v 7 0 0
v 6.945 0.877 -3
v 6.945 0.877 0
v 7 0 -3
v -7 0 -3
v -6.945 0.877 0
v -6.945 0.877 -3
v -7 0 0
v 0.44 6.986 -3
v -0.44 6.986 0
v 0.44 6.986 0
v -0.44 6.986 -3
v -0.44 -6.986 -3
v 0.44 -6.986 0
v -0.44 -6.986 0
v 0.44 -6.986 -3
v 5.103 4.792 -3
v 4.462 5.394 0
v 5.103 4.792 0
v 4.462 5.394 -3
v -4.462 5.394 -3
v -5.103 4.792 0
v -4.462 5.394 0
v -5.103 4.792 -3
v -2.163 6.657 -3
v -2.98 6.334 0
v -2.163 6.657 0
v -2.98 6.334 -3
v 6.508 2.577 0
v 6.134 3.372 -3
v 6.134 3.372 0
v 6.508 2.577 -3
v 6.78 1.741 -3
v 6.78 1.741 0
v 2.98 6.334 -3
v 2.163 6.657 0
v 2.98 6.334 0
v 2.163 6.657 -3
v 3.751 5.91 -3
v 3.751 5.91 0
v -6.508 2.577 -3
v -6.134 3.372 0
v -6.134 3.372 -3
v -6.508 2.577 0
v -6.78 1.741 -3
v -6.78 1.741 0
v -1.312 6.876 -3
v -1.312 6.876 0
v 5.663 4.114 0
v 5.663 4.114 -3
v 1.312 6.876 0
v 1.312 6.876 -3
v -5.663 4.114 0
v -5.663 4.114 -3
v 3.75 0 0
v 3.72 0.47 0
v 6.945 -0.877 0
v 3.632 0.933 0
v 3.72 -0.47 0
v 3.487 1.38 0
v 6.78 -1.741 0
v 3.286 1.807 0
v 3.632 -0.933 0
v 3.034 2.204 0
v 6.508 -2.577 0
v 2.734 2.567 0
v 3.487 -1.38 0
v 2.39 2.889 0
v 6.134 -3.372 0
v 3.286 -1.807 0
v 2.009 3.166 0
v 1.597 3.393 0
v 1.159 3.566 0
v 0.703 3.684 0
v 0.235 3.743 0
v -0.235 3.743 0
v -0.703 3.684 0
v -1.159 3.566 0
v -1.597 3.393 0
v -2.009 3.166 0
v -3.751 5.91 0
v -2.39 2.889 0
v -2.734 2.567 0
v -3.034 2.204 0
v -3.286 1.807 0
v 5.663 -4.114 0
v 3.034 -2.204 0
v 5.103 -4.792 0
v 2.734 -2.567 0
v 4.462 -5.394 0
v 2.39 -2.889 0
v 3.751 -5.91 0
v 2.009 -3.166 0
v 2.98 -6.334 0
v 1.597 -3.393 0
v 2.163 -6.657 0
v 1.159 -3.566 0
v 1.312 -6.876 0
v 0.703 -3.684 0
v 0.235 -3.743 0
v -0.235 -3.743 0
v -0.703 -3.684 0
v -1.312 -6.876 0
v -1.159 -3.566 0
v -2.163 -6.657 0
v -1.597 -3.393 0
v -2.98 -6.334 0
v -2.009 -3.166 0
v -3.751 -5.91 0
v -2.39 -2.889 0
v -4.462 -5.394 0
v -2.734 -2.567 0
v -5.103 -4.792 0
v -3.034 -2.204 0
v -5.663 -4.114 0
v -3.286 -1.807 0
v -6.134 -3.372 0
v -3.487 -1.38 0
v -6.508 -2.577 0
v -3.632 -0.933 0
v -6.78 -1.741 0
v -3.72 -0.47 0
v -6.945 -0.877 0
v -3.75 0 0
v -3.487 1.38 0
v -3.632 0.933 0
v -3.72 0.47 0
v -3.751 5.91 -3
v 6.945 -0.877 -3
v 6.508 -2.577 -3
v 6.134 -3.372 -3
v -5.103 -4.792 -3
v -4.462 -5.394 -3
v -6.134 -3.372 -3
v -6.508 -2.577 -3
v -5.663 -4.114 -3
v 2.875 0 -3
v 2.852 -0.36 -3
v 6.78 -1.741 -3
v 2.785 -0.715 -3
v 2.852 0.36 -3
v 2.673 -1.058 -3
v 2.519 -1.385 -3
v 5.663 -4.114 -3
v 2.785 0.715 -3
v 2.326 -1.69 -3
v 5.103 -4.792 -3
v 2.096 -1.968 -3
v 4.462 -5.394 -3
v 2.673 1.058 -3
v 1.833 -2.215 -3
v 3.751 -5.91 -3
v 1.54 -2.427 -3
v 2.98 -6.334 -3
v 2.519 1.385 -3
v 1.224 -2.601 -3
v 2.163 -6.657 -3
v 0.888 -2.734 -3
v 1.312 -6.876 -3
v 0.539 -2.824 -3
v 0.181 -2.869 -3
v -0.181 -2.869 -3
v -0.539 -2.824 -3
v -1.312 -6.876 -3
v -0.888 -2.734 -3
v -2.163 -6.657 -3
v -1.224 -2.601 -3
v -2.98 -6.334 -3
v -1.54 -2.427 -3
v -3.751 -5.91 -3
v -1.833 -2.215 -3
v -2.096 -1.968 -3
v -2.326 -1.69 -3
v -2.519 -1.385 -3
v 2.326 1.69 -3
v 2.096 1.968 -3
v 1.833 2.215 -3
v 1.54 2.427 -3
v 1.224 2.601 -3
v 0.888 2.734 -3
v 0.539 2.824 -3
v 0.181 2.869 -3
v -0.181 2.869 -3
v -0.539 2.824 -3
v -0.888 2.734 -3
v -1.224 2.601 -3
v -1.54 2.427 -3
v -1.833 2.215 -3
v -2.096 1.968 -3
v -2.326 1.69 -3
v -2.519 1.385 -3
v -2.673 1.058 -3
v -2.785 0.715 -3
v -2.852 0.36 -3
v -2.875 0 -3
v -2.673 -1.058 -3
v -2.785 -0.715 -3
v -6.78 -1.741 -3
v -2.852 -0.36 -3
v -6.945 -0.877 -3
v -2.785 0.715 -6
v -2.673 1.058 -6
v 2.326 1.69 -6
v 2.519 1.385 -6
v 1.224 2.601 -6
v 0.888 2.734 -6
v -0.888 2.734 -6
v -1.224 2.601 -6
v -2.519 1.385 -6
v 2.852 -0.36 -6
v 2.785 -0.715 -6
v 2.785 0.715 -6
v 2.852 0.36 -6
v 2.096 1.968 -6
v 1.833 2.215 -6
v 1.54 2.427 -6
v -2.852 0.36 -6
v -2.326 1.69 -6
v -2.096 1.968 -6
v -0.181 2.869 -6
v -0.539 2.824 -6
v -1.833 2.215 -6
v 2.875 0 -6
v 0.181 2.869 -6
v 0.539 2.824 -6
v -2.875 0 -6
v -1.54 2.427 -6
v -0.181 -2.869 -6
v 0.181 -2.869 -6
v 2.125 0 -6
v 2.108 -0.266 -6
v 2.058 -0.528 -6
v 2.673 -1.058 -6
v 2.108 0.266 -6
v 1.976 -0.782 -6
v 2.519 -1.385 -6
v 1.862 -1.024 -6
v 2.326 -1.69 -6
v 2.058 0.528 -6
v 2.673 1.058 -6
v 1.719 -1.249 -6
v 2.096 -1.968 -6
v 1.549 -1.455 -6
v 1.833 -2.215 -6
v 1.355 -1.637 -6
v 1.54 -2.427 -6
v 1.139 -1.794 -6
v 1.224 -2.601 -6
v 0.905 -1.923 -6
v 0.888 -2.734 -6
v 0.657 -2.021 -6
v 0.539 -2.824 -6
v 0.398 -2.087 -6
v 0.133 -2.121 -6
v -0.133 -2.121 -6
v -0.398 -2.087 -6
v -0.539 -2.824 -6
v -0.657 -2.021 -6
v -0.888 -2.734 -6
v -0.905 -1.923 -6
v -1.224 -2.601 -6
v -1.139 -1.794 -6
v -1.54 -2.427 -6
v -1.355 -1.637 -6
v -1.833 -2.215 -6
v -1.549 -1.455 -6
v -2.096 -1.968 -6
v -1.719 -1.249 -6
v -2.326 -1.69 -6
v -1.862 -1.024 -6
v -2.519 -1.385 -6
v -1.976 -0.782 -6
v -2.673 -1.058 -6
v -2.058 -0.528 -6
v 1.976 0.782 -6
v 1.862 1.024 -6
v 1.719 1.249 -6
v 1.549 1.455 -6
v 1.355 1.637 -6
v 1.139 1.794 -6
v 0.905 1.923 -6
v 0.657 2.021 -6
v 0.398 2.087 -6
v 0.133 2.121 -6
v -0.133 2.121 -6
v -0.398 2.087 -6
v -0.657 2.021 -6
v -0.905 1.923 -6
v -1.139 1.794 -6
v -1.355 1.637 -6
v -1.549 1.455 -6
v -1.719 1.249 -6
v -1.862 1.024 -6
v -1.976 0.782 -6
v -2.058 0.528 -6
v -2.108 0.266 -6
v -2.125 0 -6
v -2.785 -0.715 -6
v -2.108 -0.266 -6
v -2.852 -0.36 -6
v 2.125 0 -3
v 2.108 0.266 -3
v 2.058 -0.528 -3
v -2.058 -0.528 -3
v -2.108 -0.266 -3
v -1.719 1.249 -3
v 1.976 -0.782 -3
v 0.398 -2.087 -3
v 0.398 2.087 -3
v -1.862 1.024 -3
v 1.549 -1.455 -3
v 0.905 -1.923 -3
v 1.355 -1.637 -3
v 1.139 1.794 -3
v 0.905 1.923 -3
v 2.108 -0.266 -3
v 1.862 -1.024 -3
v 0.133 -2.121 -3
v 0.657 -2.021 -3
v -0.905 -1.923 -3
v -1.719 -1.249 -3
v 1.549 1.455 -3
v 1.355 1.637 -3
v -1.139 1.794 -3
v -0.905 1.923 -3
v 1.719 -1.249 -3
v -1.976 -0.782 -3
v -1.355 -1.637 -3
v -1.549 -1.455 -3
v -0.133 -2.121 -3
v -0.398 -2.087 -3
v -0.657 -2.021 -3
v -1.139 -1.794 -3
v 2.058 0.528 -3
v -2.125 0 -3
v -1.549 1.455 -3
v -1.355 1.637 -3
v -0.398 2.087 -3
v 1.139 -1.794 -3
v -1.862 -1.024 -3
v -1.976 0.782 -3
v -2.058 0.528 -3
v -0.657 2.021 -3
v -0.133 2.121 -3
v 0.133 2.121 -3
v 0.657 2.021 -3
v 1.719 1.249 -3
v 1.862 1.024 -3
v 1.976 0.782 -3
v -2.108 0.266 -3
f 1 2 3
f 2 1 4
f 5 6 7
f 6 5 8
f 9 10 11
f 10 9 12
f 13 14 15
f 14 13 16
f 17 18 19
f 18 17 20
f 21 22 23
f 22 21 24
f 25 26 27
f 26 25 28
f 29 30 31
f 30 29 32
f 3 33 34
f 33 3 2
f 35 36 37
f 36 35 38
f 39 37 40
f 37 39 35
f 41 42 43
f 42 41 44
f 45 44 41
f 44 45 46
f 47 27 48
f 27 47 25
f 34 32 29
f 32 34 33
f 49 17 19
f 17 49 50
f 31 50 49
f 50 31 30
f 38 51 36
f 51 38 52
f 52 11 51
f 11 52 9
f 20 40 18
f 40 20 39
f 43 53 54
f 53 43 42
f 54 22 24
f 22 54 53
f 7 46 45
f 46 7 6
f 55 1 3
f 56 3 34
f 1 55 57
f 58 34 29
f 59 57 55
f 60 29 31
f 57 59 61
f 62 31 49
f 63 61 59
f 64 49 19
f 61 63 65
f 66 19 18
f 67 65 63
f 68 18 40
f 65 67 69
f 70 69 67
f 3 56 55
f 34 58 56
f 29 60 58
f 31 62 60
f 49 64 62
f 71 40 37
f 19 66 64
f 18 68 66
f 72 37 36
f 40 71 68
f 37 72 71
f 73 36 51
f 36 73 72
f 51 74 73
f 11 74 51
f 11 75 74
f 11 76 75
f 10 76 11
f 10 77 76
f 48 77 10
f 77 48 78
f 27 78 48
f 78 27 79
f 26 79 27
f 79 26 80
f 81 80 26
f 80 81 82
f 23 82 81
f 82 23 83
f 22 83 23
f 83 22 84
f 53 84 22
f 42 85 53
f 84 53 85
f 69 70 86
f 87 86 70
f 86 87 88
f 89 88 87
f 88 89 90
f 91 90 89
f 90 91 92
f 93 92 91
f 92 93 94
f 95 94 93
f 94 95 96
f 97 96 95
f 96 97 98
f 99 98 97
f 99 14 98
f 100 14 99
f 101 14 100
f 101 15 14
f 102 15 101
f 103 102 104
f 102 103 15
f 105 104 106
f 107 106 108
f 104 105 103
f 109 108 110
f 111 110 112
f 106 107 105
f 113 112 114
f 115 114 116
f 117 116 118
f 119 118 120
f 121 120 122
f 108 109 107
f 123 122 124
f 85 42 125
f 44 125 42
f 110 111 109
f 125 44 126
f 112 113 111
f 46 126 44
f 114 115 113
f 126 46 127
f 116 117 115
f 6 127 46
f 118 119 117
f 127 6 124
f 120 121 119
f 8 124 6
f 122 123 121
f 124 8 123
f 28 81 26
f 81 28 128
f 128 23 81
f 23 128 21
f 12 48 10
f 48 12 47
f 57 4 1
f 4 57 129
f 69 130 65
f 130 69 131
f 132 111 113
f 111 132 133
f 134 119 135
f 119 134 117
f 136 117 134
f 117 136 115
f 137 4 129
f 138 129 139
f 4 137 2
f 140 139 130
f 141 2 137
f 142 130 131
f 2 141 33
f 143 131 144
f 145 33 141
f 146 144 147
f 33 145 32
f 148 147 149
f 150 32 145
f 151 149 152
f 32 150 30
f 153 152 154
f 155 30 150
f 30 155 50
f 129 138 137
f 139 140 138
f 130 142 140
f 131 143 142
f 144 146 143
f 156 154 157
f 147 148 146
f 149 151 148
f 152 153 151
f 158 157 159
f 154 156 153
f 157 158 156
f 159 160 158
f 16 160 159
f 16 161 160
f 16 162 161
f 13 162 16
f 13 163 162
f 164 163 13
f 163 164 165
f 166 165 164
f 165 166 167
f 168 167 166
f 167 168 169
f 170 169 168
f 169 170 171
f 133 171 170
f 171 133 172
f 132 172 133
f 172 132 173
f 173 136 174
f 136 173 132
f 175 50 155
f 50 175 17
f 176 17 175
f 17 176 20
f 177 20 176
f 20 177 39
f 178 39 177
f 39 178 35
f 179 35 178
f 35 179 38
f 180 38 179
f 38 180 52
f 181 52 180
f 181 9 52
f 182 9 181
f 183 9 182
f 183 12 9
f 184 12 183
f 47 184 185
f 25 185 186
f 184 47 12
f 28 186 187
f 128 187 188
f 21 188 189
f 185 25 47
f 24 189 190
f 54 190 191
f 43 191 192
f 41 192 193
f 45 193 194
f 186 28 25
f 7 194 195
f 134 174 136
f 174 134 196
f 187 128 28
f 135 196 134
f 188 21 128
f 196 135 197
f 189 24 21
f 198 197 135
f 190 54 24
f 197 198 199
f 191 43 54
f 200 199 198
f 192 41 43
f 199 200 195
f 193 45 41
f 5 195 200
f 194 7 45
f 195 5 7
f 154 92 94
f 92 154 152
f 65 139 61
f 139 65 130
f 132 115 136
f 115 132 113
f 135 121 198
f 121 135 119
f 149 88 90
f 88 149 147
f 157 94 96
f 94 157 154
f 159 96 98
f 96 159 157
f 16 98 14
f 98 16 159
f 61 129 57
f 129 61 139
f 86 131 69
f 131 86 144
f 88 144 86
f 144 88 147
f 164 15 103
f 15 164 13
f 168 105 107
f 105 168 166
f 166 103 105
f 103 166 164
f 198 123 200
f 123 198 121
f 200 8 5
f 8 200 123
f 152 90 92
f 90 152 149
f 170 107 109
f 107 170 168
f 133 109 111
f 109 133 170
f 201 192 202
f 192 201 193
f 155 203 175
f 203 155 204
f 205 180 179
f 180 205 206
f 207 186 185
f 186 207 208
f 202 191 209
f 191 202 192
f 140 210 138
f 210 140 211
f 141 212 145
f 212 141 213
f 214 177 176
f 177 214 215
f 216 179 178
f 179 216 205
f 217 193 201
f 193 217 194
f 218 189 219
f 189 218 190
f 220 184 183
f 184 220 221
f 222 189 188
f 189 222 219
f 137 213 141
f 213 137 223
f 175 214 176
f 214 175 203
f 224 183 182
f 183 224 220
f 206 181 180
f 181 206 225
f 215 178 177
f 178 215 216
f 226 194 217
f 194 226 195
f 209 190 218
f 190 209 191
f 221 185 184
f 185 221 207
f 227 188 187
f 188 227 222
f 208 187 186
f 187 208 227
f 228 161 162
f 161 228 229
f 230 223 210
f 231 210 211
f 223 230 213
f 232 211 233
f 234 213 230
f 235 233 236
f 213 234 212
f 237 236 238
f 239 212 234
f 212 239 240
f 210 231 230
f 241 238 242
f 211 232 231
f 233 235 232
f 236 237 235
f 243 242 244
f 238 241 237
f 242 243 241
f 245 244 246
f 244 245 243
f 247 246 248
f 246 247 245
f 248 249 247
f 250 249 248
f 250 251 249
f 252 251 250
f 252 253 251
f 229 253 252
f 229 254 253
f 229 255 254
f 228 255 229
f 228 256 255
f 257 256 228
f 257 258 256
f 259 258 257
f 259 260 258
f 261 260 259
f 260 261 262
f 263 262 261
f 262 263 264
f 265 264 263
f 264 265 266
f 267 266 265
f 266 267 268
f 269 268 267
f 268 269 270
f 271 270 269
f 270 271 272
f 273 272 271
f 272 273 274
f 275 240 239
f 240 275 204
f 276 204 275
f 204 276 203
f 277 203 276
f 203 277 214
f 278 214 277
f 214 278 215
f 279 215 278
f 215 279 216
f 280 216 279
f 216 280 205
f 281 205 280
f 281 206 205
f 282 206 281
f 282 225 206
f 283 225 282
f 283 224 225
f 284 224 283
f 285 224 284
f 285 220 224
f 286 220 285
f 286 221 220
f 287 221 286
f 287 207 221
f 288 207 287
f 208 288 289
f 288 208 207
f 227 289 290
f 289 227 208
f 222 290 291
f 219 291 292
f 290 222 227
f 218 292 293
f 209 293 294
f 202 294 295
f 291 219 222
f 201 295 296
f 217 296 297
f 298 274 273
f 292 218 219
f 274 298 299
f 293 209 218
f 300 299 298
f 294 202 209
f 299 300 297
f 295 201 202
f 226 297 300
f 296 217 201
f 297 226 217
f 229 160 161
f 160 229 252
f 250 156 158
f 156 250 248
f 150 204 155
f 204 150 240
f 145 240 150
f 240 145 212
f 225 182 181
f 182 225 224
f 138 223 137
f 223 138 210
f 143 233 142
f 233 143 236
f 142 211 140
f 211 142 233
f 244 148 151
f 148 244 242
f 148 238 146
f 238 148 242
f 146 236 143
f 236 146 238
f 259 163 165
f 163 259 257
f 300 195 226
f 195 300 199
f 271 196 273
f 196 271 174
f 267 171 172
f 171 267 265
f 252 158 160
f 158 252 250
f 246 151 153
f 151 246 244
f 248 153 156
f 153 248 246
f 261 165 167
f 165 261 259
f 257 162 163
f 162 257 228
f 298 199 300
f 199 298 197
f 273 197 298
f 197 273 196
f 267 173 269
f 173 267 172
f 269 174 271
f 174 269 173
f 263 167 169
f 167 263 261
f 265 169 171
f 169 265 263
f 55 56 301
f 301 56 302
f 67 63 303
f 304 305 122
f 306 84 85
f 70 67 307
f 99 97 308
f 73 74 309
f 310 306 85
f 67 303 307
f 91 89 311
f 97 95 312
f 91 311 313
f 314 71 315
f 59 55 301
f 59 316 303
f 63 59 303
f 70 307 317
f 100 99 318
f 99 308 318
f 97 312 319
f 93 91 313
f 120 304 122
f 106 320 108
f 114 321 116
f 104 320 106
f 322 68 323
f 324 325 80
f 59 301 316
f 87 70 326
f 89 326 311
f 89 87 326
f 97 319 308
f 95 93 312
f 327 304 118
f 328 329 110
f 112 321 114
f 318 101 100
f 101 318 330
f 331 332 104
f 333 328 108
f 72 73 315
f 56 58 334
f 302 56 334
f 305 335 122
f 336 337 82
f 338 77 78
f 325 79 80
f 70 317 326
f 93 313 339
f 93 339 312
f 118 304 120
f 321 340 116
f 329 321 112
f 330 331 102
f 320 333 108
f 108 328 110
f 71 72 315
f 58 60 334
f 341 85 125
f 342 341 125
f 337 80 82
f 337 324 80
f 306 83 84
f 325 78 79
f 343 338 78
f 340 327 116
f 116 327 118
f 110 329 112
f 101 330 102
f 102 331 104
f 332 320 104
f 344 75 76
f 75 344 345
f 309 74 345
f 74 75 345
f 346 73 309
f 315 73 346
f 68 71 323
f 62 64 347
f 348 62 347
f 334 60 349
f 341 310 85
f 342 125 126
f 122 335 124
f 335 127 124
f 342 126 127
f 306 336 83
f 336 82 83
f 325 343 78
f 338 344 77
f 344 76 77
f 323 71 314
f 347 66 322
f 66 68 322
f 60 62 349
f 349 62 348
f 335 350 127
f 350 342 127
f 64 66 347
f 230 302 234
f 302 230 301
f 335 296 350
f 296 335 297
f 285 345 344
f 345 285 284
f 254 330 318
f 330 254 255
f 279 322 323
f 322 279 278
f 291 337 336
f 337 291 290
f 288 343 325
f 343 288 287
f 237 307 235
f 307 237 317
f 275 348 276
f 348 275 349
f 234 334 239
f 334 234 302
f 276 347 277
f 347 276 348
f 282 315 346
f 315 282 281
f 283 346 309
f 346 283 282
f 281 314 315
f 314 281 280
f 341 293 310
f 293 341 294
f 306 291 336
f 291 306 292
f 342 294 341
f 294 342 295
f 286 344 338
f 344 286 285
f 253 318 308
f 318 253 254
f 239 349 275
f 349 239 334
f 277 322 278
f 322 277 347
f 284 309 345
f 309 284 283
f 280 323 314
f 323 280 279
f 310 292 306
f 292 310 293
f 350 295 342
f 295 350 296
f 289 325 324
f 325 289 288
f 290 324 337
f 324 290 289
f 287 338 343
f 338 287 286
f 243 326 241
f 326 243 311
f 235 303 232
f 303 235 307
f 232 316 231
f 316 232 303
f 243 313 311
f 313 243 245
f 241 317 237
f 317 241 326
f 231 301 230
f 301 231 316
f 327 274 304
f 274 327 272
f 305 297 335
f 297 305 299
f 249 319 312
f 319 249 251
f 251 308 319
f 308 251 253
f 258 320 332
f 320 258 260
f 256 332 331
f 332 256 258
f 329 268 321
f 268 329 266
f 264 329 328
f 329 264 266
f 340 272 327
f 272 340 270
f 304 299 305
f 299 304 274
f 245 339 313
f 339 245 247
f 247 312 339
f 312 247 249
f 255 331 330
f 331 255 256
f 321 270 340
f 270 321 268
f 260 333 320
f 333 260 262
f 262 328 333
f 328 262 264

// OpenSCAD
$fn = 50;


difference() {
	union() {
		translate(v = [0, 0, -3.0000000000]) {
			cylinder(h = 3, r = 7.0000000000);
		}
		#translate(v = [0, 0, -6.0000000000]) {
			cylinder(h = 6, r = 2.8750000000);
		}
	}
	union() {
		translate(v = [0, 0, 0]) {
			rotate(a = [0, 0, 0]) {
				difference() {
					union() {
						translate(v = [0, 0, -6.0000000000]) {
							cylinder(h = 6, r = 2.0000000000);
						}
						translate(v = [0, 0, -3]) {
							cylinder(h = 3, r1 = 2.1250000000, r2 = 3.7500000000);
						}
						translate(v = [0, 0, -6.0000000000]) {
							cylinder(h = 6, r = 2.1250000000);
						}
						translate(v = [0, 0, -6.0000000000]) {
							cylinder(h = 6, r = 2.0000000000);
						}
					}
					union();
				}
			}
		}
	}
}
